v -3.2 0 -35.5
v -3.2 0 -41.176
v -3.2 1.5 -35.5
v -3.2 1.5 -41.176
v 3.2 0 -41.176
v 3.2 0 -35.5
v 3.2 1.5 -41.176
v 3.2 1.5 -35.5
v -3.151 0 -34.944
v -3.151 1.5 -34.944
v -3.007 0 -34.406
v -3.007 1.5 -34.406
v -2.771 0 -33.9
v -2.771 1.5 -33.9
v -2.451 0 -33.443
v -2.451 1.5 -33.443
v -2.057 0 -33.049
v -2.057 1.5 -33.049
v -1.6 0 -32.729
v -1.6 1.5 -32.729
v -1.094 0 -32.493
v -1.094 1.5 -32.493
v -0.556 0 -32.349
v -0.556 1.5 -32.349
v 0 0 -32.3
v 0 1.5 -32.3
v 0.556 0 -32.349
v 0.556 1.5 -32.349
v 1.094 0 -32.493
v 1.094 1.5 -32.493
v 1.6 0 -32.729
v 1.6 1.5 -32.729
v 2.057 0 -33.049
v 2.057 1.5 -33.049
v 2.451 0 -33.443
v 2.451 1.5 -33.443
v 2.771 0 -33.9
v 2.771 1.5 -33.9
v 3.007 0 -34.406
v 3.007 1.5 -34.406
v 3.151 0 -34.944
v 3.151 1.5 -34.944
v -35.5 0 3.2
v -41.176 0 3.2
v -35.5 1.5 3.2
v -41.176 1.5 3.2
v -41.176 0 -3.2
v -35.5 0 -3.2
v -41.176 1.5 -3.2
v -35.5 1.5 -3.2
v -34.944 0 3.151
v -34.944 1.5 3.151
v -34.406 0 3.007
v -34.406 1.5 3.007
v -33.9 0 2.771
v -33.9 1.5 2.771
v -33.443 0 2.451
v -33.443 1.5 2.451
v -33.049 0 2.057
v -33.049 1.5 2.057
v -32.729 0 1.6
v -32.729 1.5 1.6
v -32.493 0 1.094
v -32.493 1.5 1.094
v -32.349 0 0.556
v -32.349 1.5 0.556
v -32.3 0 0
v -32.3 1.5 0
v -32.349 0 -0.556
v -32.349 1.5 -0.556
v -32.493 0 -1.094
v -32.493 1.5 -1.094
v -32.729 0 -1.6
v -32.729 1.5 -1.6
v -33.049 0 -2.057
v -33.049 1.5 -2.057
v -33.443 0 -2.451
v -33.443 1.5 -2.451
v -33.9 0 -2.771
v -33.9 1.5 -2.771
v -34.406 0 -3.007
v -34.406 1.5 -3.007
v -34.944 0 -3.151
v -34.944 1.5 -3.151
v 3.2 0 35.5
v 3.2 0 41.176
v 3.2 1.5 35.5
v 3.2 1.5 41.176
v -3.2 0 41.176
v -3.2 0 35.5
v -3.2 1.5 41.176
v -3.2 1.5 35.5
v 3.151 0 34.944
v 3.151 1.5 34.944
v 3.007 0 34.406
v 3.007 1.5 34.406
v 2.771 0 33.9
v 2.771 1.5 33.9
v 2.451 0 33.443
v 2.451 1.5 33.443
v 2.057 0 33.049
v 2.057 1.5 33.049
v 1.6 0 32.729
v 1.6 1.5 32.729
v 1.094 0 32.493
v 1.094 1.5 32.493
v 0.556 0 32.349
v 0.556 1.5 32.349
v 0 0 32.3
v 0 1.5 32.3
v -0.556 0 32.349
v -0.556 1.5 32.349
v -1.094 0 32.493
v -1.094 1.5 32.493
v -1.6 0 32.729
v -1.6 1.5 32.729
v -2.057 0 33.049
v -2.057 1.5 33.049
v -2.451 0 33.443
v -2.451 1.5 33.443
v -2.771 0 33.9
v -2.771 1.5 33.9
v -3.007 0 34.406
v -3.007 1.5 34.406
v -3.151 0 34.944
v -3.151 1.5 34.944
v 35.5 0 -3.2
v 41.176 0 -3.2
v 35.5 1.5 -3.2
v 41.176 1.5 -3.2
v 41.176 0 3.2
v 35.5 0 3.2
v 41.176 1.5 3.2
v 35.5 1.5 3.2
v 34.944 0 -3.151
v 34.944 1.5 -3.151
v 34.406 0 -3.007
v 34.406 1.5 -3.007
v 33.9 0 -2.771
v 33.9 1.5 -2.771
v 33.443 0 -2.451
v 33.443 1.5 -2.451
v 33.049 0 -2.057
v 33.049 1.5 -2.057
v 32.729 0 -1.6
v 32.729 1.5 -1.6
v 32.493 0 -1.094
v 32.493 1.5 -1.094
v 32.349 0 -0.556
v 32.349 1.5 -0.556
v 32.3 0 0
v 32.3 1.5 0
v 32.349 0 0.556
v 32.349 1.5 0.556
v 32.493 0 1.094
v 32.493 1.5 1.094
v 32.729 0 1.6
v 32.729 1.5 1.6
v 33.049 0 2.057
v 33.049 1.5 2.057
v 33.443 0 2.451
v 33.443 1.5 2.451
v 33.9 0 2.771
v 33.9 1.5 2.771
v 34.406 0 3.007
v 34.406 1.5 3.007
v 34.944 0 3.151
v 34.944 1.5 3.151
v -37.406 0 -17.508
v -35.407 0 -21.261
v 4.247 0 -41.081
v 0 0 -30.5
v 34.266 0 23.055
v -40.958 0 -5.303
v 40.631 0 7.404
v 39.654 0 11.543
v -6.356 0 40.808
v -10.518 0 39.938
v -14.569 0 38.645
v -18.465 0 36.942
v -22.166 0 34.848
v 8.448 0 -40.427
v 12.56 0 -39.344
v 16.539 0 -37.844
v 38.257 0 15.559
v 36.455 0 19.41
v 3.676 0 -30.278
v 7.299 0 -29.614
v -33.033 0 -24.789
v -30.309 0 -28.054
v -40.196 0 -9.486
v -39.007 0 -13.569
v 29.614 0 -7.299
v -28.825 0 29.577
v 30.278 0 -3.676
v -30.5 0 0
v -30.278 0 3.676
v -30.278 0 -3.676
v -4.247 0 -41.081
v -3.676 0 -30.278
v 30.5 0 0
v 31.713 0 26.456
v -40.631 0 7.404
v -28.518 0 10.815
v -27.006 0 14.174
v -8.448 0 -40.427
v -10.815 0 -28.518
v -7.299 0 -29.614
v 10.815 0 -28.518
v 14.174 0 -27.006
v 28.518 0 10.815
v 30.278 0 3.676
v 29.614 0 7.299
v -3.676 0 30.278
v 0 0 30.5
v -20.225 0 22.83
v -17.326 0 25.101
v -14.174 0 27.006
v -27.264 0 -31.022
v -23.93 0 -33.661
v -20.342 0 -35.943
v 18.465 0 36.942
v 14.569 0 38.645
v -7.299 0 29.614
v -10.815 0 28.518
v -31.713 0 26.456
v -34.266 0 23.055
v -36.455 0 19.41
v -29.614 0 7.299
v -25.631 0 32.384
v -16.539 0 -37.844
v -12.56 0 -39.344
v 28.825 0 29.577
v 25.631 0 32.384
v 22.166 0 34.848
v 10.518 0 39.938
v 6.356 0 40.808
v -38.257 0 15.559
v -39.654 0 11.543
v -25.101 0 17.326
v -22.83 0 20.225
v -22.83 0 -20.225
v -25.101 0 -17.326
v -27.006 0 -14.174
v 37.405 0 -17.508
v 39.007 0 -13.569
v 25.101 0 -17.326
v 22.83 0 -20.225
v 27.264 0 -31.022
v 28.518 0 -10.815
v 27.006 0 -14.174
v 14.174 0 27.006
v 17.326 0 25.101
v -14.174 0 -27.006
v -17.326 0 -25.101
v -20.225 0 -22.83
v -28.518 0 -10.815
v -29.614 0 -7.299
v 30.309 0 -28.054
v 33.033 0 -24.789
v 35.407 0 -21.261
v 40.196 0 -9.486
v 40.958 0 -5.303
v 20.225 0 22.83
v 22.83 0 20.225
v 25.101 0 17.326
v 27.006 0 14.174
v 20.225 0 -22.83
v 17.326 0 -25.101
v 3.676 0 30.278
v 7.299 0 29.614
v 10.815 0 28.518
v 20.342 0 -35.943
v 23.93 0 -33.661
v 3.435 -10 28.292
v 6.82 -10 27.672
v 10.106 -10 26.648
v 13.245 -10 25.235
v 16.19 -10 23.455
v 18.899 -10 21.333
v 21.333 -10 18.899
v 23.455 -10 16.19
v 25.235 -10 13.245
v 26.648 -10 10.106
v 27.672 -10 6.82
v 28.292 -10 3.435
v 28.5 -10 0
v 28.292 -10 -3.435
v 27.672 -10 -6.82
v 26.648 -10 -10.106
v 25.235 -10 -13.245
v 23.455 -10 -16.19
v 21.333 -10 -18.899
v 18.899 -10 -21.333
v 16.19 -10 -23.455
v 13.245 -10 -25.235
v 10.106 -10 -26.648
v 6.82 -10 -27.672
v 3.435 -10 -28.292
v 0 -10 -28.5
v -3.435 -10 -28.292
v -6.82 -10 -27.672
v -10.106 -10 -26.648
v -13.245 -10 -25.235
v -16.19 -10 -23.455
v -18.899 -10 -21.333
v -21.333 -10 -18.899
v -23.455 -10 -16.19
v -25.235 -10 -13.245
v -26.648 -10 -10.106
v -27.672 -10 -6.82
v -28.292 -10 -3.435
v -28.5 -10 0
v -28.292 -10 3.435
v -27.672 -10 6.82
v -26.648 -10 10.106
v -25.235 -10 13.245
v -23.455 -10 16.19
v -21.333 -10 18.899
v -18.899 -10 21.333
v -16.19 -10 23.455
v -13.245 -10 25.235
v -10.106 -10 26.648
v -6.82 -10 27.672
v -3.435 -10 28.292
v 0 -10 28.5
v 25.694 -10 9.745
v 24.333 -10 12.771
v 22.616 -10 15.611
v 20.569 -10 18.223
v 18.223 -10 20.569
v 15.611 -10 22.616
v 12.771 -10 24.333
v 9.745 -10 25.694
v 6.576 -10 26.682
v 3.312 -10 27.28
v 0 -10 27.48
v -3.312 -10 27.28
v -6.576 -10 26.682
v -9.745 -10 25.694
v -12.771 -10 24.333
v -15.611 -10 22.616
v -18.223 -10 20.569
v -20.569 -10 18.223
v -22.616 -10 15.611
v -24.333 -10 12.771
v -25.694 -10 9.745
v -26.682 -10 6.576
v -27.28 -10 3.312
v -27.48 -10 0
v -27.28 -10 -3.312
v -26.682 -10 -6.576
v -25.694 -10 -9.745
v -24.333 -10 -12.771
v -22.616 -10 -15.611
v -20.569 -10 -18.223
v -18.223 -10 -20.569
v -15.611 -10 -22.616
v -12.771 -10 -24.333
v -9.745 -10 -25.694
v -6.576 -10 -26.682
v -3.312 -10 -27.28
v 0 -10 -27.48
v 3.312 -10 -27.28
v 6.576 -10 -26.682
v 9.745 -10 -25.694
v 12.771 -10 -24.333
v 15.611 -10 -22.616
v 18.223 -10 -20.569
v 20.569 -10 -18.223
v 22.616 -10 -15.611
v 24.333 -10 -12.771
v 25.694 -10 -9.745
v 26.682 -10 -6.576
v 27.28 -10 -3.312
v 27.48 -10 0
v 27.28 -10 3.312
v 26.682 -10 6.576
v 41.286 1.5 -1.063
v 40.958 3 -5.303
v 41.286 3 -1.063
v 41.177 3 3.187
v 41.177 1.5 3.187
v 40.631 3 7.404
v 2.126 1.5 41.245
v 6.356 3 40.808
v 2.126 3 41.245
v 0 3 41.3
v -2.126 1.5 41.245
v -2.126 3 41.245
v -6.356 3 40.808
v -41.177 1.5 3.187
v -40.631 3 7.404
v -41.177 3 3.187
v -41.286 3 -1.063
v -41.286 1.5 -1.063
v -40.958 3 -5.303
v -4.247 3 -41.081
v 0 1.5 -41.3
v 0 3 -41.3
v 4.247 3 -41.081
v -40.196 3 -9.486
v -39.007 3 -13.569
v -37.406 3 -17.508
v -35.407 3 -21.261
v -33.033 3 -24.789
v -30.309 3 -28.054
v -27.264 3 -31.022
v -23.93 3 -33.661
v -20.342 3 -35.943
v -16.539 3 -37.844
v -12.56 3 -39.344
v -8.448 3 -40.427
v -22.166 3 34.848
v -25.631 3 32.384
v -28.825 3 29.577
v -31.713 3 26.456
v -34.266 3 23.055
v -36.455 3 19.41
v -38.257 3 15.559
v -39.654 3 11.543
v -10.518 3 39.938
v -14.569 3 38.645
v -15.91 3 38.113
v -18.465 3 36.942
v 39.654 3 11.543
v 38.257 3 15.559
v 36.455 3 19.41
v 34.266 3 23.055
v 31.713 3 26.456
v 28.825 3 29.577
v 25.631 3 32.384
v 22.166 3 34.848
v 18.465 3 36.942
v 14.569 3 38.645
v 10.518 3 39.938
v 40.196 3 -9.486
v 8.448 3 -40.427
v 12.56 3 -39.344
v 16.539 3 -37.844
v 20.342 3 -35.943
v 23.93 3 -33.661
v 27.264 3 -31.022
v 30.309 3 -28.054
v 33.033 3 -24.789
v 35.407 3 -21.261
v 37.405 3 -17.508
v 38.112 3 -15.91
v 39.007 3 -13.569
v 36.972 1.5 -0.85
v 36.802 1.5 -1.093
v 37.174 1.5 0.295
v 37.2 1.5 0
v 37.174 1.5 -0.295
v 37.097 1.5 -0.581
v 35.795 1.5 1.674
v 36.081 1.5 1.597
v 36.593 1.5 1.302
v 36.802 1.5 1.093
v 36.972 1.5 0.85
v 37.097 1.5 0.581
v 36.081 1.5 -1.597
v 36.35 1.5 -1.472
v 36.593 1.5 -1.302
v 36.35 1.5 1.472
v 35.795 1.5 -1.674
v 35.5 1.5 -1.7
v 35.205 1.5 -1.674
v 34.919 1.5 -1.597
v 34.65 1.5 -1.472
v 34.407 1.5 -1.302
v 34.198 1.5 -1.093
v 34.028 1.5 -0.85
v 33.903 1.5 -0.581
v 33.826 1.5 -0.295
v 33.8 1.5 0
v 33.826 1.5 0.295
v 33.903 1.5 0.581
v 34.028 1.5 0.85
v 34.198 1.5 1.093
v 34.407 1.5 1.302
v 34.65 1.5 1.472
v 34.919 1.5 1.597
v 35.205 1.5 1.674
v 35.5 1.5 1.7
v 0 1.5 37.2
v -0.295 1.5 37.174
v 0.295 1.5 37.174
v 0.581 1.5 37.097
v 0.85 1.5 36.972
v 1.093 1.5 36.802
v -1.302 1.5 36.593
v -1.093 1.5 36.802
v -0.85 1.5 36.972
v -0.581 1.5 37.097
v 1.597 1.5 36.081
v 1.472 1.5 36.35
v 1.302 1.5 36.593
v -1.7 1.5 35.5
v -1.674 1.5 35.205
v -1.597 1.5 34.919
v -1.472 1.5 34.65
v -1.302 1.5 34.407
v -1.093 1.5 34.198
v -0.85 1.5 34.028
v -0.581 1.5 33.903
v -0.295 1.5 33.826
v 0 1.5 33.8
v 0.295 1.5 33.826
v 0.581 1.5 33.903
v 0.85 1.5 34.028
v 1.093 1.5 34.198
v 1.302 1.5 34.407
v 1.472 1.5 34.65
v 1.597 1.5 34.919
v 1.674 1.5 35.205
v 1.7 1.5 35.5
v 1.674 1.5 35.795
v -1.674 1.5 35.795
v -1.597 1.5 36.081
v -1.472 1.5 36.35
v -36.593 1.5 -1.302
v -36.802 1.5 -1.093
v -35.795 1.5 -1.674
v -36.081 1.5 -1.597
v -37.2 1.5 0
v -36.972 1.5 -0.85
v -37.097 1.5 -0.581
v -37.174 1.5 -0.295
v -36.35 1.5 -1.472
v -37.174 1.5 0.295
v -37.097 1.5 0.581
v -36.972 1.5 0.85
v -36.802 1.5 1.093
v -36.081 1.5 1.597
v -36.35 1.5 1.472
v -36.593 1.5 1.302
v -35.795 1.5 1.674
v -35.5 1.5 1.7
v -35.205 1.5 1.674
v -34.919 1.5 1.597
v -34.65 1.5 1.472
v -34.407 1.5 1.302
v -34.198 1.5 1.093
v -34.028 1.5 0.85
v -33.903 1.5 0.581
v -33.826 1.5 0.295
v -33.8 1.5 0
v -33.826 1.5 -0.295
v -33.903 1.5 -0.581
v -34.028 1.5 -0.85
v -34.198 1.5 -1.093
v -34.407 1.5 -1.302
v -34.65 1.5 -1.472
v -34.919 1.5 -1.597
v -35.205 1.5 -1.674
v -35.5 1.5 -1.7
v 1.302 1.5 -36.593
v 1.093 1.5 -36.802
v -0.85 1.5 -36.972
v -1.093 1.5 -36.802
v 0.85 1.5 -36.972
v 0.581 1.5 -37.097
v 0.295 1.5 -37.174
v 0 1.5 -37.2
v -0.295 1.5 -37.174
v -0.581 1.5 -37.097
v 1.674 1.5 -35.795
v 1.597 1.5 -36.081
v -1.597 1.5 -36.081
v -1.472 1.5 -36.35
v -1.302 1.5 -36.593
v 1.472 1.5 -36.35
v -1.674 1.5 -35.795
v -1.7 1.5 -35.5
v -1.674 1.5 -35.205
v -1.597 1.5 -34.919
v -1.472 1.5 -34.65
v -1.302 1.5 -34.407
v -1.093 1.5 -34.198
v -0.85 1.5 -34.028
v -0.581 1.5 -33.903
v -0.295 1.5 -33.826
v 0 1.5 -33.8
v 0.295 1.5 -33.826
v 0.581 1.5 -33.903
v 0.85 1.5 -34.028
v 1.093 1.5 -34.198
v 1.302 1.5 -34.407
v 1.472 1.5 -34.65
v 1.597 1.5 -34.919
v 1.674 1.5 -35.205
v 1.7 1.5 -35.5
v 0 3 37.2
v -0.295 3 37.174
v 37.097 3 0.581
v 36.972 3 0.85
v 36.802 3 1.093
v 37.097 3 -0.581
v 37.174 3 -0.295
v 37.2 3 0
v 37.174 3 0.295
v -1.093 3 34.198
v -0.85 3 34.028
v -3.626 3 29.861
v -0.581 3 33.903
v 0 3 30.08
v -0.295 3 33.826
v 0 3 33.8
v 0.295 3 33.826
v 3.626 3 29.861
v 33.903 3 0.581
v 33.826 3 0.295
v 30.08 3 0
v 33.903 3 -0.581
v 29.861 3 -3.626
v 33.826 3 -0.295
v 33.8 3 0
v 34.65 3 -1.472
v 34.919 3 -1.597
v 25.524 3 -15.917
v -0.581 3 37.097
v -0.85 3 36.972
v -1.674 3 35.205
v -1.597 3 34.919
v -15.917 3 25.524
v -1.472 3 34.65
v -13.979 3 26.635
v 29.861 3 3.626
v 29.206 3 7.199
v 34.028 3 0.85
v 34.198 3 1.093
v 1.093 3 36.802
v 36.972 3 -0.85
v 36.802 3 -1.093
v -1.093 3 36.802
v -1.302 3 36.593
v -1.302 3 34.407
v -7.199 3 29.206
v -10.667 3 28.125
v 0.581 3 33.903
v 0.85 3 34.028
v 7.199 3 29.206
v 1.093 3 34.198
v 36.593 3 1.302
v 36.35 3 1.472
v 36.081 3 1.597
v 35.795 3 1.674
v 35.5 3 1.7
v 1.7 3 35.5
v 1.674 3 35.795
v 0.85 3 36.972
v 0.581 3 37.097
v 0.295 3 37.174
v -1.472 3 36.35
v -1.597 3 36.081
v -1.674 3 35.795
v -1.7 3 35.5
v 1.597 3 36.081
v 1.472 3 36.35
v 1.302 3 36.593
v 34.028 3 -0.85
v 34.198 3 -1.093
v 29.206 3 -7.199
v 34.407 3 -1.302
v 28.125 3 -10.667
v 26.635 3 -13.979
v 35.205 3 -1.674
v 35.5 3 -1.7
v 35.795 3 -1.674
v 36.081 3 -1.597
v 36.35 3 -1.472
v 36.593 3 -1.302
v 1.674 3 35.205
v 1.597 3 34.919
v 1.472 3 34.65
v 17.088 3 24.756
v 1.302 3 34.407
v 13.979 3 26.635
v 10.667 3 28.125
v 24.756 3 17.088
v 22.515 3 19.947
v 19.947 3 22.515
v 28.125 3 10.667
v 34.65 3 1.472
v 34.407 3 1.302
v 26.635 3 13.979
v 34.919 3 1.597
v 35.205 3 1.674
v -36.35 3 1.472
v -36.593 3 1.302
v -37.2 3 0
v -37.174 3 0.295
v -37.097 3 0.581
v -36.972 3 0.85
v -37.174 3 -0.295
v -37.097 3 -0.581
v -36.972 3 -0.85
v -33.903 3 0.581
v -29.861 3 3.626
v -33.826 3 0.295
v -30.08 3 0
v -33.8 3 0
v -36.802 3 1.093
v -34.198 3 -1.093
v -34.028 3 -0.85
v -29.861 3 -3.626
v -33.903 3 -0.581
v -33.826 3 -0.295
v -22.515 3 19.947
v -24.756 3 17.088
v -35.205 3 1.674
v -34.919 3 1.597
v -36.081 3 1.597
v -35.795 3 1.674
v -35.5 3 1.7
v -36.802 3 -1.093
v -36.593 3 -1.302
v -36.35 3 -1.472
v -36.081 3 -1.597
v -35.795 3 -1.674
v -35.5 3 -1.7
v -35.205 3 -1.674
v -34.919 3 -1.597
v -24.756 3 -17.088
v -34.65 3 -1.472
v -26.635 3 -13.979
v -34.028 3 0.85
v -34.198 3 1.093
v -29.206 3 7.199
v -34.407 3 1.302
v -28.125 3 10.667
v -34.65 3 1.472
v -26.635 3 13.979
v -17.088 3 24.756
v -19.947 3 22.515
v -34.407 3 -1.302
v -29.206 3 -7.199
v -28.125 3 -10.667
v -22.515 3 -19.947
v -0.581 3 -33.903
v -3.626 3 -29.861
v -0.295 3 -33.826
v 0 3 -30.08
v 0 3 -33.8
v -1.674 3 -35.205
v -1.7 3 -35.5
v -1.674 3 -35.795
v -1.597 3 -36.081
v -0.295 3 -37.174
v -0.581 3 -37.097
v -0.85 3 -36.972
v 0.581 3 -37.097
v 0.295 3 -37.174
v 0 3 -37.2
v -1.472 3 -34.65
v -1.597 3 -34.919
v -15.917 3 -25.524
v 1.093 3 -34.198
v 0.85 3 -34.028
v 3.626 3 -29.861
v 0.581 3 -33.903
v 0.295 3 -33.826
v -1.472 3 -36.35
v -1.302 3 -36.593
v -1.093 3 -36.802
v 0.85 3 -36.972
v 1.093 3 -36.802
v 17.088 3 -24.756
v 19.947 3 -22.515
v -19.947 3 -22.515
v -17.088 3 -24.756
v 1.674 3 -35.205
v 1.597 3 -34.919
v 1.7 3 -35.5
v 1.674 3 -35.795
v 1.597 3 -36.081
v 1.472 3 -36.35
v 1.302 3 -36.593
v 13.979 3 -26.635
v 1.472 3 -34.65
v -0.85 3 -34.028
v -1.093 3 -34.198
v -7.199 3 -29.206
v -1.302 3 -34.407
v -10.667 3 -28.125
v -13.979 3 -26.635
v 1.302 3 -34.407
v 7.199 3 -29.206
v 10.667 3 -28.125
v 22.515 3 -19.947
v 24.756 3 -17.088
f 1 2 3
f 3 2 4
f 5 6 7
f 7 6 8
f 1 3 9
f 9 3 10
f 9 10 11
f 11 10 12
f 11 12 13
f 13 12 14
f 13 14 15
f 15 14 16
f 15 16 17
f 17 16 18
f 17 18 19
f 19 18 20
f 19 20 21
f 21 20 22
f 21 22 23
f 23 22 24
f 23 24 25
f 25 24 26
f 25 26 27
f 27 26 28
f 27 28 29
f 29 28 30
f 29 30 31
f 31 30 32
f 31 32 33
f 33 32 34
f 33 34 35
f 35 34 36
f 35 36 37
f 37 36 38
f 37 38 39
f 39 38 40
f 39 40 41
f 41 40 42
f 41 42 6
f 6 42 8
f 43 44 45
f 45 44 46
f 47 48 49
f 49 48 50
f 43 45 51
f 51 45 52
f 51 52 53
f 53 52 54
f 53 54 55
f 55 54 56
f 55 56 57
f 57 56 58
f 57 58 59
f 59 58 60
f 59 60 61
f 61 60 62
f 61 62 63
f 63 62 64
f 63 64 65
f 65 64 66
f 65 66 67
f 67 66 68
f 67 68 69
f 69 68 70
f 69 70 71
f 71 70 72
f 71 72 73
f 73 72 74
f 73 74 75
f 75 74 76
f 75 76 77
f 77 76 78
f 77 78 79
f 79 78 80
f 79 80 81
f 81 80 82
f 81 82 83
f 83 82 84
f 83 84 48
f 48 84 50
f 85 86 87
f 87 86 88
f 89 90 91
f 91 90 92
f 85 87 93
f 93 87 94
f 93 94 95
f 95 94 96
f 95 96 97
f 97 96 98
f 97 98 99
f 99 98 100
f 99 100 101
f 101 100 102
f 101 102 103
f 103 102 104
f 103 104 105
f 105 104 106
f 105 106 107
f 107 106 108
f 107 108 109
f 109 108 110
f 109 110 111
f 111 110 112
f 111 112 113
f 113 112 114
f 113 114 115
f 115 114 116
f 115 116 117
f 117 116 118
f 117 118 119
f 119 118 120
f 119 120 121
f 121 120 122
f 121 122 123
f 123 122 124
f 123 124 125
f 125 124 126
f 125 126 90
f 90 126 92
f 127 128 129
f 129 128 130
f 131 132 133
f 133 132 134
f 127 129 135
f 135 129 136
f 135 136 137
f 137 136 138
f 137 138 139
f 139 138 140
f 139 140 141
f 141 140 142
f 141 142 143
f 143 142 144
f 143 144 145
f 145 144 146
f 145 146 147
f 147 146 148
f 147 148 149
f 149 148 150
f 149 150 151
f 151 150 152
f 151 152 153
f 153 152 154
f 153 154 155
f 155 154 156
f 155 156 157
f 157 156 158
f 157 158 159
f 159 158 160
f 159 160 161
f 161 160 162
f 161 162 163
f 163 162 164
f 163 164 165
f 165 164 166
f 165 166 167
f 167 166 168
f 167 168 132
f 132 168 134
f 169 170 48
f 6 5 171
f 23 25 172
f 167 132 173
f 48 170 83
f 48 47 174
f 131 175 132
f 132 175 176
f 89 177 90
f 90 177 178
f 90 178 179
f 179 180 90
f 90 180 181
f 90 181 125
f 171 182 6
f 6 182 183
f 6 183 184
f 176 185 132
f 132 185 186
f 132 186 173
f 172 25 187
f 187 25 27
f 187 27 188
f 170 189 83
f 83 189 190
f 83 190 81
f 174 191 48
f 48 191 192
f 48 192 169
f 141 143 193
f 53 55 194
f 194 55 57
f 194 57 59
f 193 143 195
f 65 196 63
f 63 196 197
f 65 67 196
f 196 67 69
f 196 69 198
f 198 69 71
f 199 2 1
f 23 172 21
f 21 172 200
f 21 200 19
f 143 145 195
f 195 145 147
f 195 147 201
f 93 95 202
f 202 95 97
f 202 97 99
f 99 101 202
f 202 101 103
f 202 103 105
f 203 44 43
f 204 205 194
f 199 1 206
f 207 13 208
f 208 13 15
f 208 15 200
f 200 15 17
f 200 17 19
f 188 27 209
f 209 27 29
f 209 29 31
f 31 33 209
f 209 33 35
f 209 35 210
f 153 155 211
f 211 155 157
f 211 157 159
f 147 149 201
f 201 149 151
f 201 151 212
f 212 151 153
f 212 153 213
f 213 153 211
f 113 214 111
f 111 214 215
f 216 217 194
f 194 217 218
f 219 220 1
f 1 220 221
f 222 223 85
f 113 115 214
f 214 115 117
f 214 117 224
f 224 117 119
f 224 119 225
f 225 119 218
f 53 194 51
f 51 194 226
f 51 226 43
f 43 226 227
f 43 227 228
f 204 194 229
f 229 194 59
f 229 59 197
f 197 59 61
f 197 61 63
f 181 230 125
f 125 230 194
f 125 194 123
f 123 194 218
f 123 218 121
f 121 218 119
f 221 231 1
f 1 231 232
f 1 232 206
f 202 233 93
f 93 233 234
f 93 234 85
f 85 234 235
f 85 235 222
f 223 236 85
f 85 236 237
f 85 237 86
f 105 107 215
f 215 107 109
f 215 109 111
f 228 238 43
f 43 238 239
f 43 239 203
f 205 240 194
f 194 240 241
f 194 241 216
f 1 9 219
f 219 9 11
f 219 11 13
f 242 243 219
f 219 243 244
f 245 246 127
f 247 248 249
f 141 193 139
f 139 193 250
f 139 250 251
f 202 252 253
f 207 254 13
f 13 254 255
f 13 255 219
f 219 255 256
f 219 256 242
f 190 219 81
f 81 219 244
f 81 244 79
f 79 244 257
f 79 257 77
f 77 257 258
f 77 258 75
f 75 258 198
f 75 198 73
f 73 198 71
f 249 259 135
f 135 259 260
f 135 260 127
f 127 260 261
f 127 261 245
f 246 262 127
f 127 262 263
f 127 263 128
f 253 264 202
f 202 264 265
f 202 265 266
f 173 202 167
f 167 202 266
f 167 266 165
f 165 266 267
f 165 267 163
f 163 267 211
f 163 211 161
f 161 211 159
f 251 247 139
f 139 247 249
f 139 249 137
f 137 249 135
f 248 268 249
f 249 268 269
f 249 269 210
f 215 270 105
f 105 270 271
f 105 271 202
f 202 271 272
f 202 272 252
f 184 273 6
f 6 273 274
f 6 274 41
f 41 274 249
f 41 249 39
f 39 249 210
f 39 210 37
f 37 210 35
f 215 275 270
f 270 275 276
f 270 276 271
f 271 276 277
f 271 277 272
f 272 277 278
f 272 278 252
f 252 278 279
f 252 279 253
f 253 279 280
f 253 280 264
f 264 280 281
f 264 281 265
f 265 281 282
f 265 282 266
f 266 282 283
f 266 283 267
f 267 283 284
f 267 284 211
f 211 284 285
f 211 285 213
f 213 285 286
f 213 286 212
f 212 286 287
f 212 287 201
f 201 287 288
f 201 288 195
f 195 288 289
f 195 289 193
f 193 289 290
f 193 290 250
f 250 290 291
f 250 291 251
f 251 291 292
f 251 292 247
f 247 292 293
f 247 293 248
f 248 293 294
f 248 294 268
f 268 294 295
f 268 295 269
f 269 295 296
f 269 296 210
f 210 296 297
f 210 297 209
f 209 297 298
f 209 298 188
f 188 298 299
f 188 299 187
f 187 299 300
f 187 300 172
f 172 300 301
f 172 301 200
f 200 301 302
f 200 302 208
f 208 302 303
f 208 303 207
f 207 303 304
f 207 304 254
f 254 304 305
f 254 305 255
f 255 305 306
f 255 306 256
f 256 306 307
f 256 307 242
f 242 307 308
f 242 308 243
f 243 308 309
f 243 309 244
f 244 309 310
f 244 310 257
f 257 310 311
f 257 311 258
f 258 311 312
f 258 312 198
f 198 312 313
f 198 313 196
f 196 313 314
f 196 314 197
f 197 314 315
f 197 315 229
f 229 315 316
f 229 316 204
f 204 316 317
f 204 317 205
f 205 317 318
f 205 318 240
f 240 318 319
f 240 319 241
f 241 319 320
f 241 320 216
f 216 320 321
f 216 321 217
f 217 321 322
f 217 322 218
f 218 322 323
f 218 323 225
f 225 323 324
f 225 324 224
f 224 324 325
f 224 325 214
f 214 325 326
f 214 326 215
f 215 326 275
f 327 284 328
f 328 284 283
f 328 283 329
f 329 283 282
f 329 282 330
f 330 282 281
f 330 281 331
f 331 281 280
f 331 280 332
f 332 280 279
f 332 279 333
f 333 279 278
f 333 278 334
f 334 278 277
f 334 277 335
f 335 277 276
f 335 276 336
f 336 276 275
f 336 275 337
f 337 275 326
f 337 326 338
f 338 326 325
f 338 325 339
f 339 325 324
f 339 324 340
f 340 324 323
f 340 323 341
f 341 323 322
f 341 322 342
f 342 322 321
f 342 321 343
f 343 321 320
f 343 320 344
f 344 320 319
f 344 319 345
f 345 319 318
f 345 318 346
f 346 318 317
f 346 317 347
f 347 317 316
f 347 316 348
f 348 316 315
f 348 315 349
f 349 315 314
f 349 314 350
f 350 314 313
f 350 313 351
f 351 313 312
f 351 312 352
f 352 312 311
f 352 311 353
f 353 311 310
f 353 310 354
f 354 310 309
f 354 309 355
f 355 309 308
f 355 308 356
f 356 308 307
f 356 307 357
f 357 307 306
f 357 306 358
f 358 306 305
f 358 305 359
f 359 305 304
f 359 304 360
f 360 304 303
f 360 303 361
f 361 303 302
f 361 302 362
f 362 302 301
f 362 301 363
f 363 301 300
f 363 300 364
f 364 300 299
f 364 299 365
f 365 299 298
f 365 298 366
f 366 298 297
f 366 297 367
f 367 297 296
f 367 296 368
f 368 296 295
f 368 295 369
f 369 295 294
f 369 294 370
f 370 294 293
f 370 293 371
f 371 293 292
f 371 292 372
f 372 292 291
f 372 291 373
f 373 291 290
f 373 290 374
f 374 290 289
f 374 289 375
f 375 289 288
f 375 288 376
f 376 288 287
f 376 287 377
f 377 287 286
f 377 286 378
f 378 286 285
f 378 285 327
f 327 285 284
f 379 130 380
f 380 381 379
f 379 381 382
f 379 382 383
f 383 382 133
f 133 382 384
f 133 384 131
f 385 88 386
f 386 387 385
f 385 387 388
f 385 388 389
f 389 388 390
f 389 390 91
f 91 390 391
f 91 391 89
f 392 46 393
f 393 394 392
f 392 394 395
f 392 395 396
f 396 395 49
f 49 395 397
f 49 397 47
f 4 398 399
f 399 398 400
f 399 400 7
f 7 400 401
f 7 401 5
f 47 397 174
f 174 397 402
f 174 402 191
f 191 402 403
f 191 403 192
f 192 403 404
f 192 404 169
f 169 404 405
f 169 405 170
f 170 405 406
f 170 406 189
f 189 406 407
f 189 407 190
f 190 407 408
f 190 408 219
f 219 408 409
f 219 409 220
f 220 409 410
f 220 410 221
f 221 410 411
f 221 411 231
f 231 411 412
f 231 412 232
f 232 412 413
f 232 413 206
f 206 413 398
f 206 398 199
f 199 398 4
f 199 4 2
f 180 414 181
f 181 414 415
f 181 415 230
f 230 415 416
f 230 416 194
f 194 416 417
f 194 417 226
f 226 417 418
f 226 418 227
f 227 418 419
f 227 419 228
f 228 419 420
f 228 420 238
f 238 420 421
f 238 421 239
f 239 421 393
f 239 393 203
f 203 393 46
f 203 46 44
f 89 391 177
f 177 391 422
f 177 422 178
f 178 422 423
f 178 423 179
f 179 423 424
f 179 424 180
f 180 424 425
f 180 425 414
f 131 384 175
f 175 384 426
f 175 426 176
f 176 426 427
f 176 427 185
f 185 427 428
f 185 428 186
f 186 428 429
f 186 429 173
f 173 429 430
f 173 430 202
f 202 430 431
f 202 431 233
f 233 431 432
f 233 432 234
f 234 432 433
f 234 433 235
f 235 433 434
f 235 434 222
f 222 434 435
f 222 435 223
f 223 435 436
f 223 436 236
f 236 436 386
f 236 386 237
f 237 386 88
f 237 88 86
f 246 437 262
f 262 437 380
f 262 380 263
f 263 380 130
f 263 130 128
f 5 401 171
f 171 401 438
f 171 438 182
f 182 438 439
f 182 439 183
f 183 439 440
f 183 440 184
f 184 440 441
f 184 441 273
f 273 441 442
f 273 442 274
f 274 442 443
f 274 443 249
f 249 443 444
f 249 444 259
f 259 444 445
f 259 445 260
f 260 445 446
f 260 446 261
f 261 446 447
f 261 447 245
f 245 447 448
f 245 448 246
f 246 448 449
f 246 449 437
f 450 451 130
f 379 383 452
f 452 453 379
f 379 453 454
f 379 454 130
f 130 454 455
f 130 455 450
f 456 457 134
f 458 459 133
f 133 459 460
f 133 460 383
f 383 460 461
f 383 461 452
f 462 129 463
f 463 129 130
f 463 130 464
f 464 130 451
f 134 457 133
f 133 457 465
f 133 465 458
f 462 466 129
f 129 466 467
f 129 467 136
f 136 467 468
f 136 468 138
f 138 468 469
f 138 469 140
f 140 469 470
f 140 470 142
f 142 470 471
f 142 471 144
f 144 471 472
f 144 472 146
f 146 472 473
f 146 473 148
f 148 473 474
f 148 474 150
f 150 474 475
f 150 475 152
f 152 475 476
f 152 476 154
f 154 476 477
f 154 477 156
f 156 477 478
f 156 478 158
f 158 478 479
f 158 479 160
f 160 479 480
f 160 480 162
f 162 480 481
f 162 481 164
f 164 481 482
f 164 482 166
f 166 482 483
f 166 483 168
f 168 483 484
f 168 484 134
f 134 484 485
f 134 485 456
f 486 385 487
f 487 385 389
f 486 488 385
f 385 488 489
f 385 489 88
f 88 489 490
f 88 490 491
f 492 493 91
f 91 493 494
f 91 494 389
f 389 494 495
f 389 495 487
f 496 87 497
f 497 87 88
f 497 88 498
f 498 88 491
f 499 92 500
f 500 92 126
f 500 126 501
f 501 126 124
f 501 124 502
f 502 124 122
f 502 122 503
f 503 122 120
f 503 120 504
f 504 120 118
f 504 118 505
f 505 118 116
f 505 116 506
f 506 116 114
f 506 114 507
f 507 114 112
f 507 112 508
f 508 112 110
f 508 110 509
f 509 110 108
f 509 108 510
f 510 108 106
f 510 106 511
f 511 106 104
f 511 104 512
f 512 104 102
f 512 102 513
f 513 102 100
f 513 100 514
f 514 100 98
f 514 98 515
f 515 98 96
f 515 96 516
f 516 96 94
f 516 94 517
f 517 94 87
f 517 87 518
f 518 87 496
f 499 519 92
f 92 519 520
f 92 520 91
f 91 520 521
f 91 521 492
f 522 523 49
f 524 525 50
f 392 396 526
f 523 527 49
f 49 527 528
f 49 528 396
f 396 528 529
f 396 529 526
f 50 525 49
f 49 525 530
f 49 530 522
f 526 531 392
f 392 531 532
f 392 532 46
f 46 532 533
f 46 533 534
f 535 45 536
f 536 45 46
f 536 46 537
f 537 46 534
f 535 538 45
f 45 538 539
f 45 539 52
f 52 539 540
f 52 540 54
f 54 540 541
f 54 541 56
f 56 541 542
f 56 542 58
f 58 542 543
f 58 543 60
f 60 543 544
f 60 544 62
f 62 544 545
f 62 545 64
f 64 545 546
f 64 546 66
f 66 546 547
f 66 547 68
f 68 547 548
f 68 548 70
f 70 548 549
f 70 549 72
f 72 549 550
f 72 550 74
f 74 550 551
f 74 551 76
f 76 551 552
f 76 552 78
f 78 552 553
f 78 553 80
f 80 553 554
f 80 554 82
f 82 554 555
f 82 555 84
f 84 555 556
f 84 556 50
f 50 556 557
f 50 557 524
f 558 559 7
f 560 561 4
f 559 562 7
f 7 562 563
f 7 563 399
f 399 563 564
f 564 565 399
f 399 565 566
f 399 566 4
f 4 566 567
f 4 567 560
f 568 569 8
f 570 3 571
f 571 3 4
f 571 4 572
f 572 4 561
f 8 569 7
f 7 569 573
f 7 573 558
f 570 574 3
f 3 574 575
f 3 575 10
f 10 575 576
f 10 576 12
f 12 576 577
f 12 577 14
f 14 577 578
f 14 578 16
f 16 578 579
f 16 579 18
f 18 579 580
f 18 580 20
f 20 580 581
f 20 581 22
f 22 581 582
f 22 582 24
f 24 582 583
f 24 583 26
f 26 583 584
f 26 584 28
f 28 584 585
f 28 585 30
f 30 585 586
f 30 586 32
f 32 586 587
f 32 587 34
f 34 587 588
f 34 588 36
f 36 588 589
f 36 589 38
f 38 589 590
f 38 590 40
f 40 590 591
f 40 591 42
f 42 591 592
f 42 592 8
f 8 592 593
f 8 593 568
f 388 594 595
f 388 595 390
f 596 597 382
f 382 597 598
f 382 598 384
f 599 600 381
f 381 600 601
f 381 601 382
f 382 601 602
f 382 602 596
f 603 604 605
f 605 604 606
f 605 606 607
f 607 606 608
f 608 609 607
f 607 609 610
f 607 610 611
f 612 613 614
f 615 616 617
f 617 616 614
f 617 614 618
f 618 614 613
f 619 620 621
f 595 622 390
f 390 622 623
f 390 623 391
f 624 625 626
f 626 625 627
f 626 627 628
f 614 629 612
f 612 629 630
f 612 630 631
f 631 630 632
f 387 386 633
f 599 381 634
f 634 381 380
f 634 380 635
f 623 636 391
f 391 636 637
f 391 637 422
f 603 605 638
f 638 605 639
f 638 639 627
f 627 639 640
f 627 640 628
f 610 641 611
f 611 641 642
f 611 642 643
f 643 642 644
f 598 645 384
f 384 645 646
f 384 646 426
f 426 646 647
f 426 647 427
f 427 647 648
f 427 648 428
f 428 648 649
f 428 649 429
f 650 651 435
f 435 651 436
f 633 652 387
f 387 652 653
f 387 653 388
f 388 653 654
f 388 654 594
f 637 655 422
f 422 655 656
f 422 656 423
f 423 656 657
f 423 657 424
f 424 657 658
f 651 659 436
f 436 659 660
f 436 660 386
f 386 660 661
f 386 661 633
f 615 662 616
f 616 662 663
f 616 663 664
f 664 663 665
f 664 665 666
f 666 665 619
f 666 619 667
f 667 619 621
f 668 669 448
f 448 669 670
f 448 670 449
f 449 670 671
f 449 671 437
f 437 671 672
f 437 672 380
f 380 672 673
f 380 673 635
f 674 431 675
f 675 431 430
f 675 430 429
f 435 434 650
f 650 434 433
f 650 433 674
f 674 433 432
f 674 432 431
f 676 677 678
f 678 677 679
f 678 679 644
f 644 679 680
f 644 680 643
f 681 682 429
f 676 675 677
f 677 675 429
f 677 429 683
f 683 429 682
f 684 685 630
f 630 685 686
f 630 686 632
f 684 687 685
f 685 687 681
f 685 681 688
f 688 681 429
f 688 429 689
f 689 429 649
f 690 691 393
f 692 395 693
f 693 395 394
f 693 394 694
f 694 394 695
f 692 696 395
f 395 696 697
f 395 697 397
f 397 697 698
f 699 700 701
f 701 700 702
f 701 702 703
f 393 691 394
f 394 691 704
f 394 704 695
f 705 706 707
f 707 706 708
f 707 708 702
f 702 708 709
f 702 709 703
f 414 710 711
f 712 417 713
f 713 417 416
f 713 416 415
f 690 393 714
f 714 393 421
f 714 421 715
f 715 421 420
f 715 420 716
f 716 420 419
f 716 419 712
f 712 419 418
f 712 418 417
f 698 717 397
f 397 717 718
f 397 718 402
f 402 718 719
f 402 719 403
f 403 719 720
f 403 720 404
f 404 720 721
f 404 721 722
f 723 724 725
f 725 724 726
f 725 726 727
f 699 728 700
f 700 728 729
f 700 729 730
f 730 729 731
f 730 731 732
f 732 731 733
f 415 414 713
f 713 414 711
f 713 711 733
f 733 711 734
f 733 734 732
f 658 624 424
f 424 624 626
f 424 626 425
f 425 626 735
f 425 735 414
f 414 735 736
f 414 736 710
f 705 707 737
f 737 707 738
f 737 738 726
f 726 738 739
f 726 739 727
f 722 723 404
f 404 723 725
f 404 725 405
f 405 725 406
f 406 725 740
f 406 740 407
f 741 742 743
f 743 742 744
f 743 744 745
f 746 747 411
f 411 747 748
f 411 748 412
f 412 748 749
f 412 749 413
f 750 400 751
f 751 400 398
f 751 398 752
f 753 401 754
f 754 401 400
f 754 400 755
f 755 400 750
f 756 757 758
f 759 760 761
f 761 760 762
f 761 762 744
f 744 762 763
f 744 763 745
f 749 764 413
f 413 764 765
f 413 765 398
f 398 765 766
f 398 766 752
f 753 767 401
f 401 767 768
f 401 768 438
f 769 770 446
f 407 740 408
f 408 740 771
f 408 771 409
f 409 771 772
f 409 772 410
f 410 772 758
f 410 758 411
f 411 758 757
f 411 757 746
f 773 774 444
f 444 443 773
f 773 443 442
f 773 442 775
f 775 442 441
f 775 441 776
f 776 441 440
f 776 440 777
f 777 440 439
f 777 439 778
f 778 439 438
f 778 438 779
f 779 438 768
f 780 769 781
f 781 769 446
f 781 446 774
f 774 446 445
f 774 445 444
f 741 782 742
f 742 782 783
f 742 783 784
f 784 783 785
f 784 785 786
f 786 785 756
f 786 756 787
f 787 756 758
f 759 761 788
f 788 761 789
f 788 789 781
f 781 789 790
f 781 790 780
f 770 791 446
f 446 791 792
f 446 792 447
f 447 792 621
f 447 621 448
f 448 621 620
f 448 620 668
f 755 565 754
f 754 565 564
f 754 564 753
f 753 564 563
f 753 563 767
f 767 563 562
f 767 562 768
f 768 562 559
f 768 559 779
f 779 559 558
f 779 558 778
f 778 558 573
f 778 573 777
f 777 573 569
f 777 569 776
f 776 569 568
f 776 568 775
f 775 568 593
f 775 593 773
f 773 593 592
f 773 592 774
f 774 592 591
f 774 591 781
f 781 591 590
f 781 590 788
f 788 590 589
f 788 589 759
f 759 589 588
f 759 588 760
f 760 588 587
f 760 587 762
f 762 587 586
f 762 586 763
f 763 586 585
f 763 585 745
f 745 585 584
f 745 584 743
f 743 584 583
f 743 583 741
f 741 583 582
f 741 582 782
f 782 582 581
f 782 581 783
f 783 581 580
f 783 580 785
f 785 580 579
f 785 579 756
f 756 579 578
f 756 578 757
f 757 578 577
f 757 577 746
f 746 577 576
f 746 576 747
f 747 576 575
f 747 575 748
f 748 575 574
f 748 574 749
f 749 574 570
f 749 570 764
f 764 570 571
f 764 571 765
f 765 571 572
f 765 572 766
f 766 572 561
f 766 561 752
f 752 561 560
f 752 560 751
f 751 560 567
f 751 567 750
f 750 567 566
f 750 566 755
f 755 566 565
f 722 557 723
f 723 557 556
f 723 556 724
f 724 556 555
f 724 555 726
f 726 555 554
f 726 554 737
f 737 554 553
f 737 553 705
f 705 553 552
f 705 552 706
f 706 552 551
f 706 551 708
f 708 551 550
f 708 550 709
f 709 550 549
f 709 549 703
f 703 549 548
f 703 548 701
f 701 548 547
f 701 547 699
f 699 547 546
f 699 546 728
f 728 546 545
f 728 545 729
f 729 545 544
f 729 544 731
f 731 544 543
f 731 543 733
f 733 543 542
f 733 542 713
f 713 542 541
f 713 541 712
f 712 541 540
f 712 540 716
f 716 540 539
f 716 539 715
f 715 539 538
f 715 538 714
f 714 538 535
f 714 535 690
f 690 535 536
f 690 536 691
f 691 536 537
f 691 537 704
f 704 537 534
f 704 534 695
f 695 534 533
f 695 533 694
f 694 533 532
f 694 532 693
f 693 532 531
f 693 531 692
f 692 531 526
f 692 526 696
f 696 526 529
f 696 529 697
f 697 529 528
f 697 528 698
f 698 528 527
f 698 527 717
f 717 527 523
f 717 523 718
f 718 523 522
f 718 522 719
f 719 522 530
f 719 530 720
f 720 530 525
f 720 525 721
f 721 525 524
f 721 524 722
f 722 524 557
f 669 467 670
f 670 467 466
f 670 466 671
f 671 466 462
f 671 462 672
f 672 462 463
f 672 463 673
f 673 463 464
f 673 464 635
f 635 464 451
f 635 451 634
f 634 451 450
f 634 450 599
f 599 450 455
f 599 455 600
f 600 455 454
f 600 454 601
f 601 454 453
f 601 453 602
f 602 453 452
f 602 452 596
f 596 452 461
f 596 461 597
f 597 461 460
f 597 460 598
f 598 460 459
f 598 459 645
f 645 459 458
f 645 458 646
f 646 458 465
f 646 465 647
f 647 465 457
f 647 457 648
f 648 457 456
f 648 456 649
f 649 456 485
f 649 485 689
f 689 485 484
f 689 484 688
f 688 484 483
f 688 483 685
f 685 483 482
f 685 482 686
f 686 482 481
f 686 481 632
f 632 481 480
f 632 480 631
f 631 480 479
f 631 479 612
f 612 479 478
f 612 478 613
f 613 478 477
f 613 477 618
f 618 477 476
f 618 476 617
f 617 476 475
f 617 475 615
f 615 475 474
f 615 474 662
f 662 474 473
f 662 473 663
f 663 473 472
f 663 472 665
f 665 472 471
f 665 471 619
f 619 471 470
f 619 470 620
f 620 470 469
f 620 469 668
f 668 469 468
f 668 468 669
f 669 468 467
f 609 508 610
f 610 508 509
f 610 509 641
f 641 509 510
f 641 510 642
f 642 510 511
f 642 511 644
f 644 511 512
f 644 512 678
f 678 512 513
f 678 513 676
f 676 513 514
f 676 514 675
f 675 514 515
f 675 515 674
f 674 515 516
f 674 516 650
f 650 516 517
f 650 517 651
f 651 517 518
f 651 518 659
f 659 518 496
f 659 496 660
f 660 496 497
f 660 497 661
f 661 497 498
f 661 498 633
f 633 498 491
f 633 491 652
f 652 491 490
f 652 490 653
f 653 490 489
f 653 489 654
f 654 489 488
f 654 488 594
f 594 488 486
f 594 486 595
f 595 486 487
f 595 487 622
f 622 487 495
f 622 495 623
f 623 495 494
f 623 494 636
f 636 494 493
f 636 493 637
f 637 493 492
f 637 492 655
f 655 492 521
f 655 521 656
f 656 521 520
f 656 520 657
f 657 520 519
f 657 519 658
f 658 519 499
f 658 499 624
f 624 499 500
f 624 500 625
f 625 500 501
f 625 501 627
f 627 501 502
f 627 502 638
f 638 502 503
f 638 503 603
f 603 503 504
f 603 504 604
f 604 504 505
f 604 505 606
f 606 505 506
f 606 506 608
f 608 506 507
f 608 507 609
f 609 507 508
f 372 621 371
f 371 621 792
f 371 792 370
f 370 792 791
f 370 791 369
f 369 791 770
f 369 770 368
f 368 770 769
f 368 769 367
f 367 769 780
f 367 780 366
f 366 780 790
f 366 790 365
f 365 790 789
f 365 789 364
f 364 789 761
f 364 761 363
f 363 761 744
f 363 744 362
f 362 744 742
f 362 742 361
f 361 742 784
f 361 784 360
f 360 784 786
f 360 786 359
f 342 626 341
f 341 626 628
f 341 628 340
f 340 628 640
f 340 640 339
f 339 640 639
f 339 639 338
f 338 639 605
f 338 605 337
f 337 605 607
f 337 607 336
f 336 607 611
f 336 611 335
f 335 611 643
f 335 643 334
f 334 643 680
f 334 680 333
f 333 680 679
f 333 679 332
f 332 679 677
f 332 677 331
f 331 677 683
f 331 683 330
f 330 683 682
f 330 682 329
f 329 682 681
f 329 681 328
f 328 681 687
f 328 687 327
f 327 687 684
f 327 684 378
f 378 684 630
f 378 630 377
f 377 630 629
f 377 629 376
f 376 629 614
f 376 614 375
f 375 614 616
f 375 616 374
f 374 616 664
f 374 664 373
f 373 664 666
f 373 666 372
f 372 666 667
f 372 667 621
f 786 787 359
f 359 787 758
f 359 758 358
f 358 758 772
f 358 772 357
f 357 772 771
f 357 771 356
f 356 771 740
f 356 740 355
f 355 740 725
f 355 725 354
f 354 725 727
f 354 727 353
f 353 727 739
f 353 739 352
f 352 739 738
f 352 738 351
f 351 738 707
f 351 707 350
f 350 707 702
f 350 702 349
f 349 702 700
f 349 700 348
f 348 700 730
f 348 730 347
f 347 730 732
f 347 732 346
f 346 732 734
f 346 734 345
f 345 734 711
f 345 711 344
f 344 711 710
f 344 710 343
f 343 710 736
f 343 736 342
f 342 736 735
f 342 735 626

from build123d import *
from build123d.topology import SkipClean

# Parameters (mm, degrees)
SKETCH3_R           = 40
SKETCH3_R_2         = 35.480196097
BOSS_EXTRUDE1_DEPTH = 2
BOSS_EXTRUDE2_START = -2
SKETCH4_R           = 41.3
SKETCH4_R_2         = 40
BOSS_EXTRUDE2_DEPTH = 2
CUT_EXTRUDE1_DEPTH  = 10
SKETCH7_R           = 29.880196097
BOSS_EXTRUDE3_DEPTH = 0.5
BOSS_EXTRUDE4_START = 1
SKETCH8_R           = 41.3
SKETCH8_R_2         = 29.880196097
BOSS_EXTRUDE4_DEPTH = 1
SKETCH12_R          = 1.7
CUT_EXTRUDE2_DEPTH  = 60.256898333


# Read off the part's stored shape, not the designer's step: Revolve3
with BuildPart() as part:
    # Revolve3 outline → Revolve3 (revolve)
    with BuildSketch(Plane.XY):
        Polygon((35.480196097, 2), (29.880196097, 2), (27.480196097, -10), (28.5, -10), (30.5, 0), (35.480196097, 0), align=None)
    revolve(axis=Axis((0, 0, 0), (0, 1, 0)))

    # Sketch3 → Boss-Extrude1 (add)
    with BuildSketch(Plane(origin=(0, 2, 0), x_dir=(1, 0, 0), z_dir=(0, 1, 0))):
        with Locations(Location((0, 0, 0), (0, 0, 270))):
            Circle(SKETCH3_R)
        Circle(SKETCH3_R_2, mode=Mode.SUBTRACT)
    extrude(amount=-BOSS_EXTRUDE1_DEPTH)

    # Sketch4 → Boss-Extrude2 (add)
    with BuildSketch(Plane.XZ.offset(BOSS_EXTRUDE2_START)):
        with Locations(Location((0, 0, 0), (0, 0, 270))):
            Circle(SKETCH4_R)
        Circle(SKETCH4_R_2, mode=Mode.SUBTRACT)
    extrude(amount=BOSS_EXTRUDE2_DEPTH)

    # Sketch6 → Cut-Extrude1 (cut)
    with BuildSketch(Plane(origin=(0, 2, 0), x_dir=(1, 0, 0), z_dir=(0, 1, 0))):
        with BuildLine():
            ThreePointArc((41.3, 0), (41.268948935, 1.601203852), (41.175842432, 3.2))
            Line((41.175842432, 3.2), (35.5, 3.2))
            ThreePointArc((35.5, 3.2), (32.3, 0), (35.5, -3.2))
            Line((35.5, -3.2), (41.175842432, -3.2))
            ThreePointArc((41.175842432, -3.2), (41.268948935, -1.601203852), (41.3, 0))
        make_face()
        with BuildLine():
            ThreePointArc((-3.2, -41.175842432), (0, -41.3), (3.2, -41.175842432))
            Line((3.2, -41.175842432), (3.2, -35.5))
            ThreePointArc((3.2, -35.5), (0, -32.3), (-3.2, -35.5))
            Line((-3.2, -35.5), (-3.2, -41.175842432))
        make_face()
        with BuildLine():
            Line((-35.5, 3.2), (-41.175842432, 3.2))
            ThreePointArc((-41.175842432, 3.2), (-41.3, 0), (-41.175842432, -3.2))
            Line((-41.175842432, -3.2), (-35.5, -3.2))
            ThreePointArc((-35.5, -3.2), (-32.3, 0), (-35.5, 3.2))
        make_face()
        with BuildLine():
            ThreePointArc((-3.2, 35.5), (0, 32.3), (3.2, 35.5))
            Line((3.2, 35.5), (3.2, 41.175842432))
            ThreePointArc((3.2, 41.175842432), (0, 41.3), (-3.2, 41.175842432))
            Line((-3.2, 41.175842432), (-3.2, 35.5))
        make_face()
    extrude(amount=-CUT_EXTRUDE1_DEPTH, mode=Mode.SUBTRACT)

    # Sketch7 → Boss-Extrude3 (add)
    # profile 1 of 5: a face of its own
    with SkipClean():  # the faces are left unmerged after this step: merging them gives an invalid solid
        with BuildSketch(Plane(origin=(0, 2, 0), x_dir=(1, 0, 0), z_dir=(0, 1, 0))):
            with BuildLine():
                Line((41.175842432, -3.2), (35.5, -3.2))
                ThreePointArc((35.5, -3.2), (32.3, 0), (35.5, 3.2))
                Line((35.5, 3.2), (41.175842432, 3.2))
                ThreePointArc((41.175842432, 3.2), (29.203510063, 29.203510063), (3.2, 41.175842432))
                Line((3.2, 41.175842432), (3.2, 35.5))
                ThreePointArc((3.2, 35.5), (0, 32.3), (-3.2, 35.5))
                Line((-3.2, 35.5), (-3.2, 41.175842432))
                ThreePointArc((-3.2, 41.175842432), (-29.203510063, 29.203510063), (-41.175842432, 3.2))
                Line((-41.175842432, 3.2), (-35.5, 3.2))
                ThreePointArc((-35.5, 3.2), (-32.3, 0), (-35.5, -3.2))
                Line((-35.5, -3.2), (-41.175842432, -3.2))
                ThreePointArc((-41.175842432, -3.2), (-29.203510063, -29.203510063), (-3.2, -41.175842432))
                Line((-3.2, -41.175842432), (-3.2, -35.5))
                ThreePointArc((-3.2, -35.5), (0, -32.3), (3.2, -35.5))
                Line((3.2, -35.5), (3.2, -41.175842432))
                ThreePointArc((3.2, -41.175842432), (29.203510063, -29.203510063), (41.175842432, -3.2))
            make_face()
            Circle(SKETCH7_R, mode=Mode.SUBTRACT)
        # profile 2 of 5: a face of its own
        with BuildSketch(Plane(origin=(0, 2, 0), x_dir=(1, 0, 0), z_dir=(0, 1, 0))):
            with BuildLine():
                Line((-35.5, 3.2), (-41.175842432, 3.2))
                ThreePointArc((-41.175842432, 3.2), (-41.3, 0), (-41.175842432, -3.2))
                Line((-41.175842432, -3.2), (-35.5, -3.2))
                ThreePointArc((-35.5, -3.2), (-32.3, 0), (-35.5, 3.2))
            make_face()
        # profile 3 of 5: a face of its own
        with BuildSketch(Plane(origin=(0, 2, 0), x_dir=(1, 0, 0), z_dir=(0, 1, 0))):
            with BuildLine():
                ThreePointArc((-3.2, -41.175842432), (0, -41.3), (3.2, -41.175842432))
                Line((3.2, -41.175842432), (3.2, -35.5))
                ThreePointArc((3.2, -35.5), (0, -32.3), (-3.2, -35.5))
                Line((-3.2, -35.5), (-3.2, -41.175842432))
            make_face()
        # profile 4 of 5: a face of its own
        with BuildSketch(Plane(origin=(0, 2, 0), x_dir=(1, 0, 0), z_dir=(0, 1, 0))):
            with BuildLine():
                ThreePointArc((41.175842432, -3.2), (41.268948935, -1.601203852), (41.3, 0))
                ThreePointArc((41.3, 0), (41.268948935, 1.601203852), (41.175842432, 3.2))
                Line((41.175842432, 3.2), (35.5, 3.2))
                ThreePointArc((35.5, 3.2), (32.3, 0), (35.5, -3.2))
                Line((35.5, -3.2), (41.175842432, -3.2))
            make_face()
        # profile 5 of 5: a face of its own
        with BuildSketch(Plane(origin=(0, 2, 0), x_dir=(1, 0, 0), z_dir=(0, 1, 0))):
            with BuildLine():
                Line((3.2, 35.5), (3.2, 41.175842432))
                ThreePointArc((3.2, 41.175842432), (0, 41.3), (-3.2, 41.175842432))
                Line((-3.2, 41.175842432), (-3.2, 35.5))
                ThreePointArc((-3.2, 35.5), (0, 32.3), (3.2, 35.5))
            make_face()
        extrude(amount=-BOSS_EXTRUDE3_DEPTH)

    # Sketch8 → Boss-Extrude4 (add)
    with SkipClean():  # the faces are left unmerged after this step: merging them gives an invalid solid
        with BuildSketch(Plane(origin=(0, 2, 0), x_dir=(1, 0, 0), z_dir=(0, 1, 0)).offset(BOSS_EXTRUDE4_START)):
            with Locations(Location((0, 0, 0), (0, 0, 94.4438364))):
                Circle(SKETCH8_R)
            with Locations(Location((0, 0, 0), (0, 0, 270))):
                Circle(SKETCH8_R_2, mode=Mode.SUBTRACT)
        extrude(amount=-BOSS_EXTRUDE4_DEPTH)

    # Sketch12 → Cut-Extrude2 (cut, through all)
    with SkipClean():  # the faces are left unmerged after this step: merging them gives an invalid solid
        with BuildSketch(Plane.XZ):
            with Locations(Location((0, 35.5, 0), (0, 0, 270))):
                Circle(SKETCH12_R)
            with Locations(Location((35.5, 0, 0), (0, 0, 270))):
                Circle(SKETCH12_R)
            with Locations(Location((-35.5, 0, 0), (0, 0, 270))):
                Circle(SKETCH12_R)
            with Locations(Location((0, -35.5, 0), (0, 0, 270))):
                Circle(SKETCH12_R)
        extrude(amount=-CUT_EXTRUDE2_DEPTH, mode=Mode.SUBTRACT)

    # Sketch9 → Cut-Revolve2 (revolve, cut)
    with SkipClean():  # the faces are left unmerged after this step: merging them gives an invalid solid
        with BuildSketch(Plane.XY):
            Polygon((-27.480196097, -10), (-31.397991817, 9.588858549), (0, 9.588858549), (0, -10), align=None)
        revolve(axis=Axis((0, 9.588858549, 0), (0, -1, 0)), mode=Mode.SUBTRACT)


solid = part.part
